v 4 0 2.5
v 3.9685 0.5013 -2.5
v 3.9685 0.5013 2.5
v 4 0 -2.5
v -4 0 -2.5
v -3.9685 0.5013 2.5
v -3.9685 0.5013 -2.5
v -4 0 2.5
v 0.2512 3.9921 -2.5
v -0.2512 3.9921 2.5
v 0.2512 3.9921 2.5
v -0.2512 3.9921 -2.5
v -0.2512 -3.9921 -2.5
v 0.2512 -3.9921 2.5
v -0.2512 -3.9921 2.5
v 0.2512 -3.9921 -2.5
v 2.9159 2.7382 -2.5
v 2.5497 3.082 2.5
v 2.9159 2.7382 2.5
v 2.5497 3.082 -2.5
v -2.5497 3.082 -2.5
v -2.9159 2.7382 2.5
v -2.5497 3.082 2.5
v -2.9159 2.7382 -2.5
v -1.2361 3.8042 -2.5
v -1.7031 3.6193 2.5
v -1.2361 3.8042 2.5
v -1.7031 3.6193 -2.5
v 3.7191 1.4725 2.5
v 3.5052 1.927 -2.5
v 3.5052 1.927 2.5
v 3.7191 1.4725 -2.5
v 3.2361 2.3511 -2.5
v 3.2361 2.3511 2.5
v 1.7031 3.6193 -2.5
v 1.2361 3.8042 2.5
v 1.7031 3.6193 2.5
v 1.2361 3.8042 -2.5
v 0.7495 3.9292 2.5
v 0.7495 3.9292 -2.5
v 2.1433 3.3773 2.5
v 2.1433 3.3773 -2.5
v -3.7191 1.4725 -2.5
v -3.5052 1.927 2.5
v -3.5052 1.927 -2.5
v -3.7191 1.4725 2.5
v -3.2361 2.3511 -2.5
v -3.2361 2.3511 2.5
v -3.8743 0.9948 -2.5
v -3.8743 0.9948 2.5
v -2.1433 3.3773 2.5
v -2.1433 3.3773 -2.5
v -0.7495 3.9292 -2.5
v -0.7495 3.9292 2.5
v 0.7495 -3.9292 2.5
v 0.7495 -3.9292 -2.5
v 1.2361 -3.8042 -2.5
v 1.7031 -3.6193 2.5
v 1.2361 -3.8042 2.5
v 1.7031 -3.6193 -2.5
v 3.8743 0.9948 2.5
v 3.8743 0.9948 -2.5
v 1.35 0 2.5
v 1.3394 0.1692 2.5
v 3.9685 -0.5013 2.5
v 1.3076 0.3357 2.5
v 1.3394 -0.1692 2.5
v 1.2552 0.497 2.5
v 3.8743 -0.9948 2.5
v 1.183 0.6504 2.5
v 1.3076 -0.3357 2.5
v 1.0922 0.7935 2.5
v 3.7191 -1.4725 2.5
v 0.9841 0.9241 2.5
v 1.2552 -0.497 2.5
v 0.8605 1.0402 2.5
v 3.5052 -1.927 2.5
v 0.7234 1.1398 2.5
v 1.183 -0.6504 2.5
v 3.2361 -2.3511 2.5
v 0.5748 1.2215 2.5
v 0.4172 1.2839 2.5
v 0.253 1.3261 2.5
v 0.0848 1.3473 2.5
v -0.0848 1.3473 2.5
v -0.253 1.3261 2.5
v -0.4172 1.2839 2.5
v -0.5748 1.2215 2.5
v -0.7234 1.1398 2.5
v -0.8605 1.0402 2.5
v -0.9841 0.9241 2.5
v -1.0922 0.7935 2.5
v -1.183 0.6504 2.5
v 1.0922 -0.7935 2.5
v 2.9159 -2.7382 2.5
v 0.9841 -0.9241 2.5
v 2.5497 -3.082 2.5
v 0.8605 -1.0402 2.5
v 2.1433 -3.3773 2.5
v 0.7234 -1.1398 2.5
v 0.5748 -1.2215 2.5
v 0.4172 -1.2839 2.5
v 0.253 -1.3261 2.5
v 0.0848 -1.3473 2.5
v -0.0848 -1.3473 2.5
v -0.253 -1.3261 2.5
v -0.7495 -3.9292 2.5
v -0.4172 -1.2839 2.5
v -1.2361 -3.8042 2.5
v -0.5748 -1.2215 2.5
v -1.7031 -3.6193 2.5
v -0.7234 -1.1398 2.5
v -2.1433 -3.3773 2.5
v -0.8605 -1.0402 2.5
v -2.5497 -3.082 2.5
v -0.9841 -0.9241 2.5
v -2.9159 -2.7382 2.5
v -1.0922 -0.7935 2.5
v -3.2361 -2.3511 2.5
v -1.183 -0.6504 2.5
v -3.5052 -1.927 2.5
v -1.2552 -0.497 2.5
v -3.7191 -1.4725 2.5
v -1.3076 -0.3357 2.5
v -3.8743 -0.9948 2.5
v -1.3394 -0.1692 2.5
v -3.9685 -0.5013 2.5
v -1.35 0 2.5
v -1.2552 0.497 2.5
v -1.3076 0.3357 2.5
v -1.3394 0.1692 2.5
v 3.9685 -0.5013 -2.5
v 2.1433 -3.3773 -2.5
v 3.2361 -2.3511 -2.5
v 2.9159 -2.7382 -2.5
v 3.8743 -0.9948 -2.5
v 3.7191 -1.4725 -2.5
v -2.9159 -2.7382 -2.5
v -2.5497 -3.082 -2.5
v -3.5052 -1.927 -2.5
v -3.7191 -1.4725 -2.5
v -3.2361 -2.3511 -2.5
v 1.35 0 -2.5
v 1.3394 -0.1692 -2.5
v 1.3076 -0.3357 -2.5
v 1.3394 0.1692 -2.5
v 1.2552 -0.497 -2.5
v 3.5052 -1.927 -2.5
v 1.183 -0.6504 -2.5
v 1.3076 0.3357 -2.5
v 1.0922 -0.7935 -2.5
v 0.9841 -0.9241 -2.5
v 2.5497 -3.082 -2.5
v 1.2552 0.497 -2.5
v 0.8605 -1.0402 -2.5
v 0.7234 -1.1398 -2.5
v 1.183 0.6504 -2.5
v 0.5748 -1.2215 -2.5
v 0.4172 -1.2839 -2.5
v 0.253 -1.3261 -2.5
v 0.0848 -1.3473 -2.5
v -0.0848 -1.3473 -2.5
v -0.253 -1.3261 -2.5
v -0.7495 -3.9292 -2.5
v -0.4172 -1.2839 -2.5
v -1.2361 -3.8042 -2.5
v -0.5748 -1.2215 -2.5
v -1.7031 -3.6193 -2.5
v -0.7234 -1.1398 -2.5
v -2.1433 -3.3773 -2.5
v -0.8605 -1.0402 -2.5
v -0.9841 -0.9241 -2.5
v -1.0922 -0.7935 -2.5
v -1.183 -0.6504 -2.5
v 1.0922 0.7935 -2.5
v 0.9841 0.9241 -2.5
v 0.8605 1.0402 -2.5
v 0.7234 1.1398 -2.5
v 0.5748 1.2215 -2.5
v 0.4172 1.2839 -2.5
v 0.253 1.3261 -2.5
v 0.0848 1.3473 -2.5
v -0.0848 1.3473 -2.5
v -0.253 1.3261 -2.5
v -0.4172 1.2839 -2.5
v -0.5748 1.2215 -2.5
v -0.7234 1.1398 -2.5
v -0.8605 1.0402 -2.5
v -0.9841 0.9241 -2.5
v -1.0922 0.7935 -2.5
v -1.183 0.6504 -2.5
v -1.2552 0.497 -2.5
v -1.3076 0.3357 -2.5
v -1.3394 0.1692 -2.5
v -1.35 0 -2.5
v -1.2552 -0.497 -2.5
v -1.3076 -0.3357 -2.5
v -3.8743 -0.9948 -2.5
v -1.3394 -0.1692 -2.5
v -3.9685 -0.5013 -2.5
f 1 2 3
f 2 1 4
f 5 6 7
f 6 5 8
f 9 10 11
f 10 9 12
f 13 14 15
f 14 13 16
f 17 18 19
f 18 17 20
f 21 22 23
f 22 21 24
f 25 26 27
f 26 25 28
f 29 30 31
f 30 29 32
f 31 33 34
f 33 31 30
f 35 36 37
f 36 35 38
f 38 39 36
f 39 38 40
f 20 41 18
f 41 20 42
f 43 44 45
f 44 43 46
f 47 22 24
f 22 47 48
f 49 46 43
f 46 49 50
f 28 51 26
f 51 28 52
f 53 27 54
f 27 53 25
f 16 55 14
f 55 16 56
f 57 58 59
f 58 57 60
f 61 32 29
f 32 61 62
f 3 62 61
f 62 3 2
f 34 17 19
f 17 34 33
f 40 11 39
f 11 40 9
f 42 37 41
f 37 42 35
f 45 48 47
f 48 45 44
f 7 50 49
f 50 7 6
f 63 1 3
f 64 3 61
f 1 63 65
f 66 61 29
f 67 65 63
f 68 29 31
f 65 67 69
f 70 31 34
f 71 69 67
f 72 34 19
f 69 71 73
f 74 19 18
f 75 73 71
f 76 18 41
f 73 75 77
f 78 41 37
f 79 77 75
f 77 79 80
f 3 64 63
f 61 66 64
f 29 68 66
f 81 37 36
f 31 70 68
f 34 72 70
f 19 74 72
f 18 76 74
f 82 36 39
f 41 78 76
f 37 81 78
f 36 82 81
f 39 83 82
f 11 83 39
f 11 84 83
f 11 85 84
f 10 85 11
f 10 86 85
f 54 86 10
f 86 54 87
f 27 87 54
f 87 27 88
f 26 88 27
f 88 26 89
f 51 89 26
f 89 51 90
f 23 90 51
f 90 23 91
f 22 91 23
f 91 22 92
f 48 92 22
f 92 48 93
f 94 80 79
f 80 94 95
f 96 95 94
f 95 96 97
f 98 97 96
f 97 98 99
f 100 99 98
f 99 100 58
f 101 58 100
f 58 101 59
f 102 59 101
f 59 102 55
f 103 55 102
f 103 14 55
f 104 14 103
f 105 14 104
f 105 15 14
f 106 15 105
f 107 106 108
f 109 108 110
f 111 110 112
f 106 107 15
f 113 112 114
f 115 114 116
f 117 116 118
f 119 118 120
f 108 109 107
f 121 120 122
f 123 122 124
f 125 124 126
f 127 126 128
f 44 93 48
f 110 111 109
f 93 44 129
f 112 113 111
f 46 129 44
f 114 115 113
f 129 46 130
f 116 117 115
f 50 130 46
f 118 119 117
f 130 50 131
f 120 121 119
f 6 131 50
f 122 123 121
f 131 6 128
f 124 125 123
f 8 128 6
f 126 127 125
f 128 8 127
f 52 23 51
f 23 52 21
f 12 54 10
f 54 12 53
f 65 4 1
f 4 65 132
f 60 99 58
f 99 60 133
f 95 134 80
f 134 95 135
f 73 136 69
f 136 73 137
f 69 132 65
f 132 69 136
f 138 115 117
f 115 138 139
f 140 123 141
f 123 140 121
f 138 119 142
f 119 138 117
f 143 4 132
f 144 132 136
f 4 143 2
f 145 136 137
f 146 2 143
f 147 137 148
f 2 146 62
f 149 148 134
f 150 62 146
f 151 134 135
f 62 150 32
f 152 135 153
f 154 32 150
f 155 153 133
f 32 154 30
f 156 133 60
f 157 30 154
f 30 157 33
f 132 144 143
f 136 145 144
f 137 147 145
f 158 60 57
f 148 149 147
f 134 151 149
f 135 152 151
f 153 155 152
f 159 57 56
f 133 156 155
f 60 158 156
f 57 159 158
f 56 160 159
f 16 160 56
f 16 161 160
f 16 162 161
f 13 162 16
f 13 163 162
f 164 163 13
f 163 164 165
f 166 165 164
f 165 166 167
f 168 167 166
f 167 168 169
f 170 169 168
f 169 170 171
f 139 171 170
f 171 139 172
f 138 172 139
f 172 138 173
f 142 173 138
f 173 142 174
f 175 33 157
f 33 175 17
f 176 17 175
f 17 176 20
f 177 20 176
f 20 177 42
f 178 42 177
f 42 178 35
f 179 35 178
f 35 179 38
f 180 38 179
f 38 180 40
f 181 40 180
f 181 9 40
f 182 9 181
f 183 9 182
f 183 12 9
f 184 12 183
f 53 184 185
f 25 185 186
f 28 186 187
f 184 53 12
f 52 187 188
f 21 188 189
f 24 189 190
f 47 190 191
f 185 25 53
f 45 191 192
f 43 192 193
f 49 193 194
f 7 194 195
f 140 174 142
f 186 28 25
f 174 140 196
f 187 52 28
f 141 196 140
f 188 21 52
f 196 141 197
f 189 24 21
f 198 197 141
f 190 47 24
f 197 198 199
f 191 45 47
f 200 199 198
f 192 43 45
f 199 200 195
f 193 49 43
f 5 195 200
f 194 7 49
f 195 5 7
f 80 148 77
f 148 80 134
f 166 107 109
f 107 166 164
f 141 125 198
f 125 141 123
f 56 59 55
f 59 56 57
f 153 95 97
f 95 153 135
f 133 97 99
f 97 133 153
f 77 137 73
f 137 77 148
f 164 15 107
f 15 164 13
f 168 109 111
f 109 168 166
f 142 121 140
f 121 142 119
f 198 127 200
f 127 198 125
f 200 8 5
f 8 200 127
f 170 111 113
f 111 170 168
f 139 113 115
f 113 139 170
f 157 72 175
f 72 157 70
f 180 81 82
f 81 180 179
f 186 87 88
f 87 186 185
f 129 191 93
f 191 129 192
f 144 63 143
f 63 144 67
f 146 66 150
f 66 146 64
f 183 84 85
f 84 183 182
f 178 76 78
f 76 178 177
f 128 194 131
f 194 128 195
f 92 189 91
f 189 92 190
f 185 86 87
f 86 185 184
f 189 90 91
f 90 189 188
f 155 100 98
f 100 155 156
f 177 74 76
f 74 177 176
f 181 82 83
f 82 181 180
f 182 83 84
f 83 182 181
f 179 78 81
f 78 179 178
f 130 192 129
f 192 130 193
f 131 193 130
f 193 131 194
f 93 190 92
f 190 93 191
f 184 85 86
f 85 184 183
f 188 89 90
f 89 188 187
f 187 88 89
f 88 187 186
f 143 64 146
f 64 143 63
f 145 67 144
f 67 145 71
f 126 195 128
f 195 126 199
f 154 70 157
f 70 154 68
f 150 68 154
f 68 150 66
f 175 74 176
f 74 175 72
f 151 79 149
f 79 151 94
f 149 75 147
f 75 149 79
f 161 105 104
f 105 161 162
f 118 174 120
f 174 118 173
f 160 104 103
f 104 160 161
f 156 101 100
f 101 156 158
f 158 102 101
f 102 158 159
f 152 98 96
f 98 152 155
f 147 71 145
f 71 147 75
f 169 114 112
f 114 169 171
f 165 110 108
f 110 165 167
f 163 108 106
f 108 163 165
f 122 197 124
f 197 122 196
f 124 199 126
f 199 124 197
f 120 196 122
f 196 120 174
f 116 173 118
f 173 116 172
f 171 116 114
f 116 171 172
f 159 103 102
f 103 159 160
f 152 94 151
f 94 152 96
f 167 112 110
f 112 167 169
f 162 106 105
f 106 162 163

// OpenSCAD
$fn = 50;


difference() {
	union() {
		translate(v = [0, 0, -2.5000000000]) {
			cylinder(h = 5, r = 4.0000000000);
		}
	}
	union() {
		translate(v = [0, 0, -100.0000000000]) {
			cylinder(h = 200, r = 1.3500000000);
		}
	}
}
